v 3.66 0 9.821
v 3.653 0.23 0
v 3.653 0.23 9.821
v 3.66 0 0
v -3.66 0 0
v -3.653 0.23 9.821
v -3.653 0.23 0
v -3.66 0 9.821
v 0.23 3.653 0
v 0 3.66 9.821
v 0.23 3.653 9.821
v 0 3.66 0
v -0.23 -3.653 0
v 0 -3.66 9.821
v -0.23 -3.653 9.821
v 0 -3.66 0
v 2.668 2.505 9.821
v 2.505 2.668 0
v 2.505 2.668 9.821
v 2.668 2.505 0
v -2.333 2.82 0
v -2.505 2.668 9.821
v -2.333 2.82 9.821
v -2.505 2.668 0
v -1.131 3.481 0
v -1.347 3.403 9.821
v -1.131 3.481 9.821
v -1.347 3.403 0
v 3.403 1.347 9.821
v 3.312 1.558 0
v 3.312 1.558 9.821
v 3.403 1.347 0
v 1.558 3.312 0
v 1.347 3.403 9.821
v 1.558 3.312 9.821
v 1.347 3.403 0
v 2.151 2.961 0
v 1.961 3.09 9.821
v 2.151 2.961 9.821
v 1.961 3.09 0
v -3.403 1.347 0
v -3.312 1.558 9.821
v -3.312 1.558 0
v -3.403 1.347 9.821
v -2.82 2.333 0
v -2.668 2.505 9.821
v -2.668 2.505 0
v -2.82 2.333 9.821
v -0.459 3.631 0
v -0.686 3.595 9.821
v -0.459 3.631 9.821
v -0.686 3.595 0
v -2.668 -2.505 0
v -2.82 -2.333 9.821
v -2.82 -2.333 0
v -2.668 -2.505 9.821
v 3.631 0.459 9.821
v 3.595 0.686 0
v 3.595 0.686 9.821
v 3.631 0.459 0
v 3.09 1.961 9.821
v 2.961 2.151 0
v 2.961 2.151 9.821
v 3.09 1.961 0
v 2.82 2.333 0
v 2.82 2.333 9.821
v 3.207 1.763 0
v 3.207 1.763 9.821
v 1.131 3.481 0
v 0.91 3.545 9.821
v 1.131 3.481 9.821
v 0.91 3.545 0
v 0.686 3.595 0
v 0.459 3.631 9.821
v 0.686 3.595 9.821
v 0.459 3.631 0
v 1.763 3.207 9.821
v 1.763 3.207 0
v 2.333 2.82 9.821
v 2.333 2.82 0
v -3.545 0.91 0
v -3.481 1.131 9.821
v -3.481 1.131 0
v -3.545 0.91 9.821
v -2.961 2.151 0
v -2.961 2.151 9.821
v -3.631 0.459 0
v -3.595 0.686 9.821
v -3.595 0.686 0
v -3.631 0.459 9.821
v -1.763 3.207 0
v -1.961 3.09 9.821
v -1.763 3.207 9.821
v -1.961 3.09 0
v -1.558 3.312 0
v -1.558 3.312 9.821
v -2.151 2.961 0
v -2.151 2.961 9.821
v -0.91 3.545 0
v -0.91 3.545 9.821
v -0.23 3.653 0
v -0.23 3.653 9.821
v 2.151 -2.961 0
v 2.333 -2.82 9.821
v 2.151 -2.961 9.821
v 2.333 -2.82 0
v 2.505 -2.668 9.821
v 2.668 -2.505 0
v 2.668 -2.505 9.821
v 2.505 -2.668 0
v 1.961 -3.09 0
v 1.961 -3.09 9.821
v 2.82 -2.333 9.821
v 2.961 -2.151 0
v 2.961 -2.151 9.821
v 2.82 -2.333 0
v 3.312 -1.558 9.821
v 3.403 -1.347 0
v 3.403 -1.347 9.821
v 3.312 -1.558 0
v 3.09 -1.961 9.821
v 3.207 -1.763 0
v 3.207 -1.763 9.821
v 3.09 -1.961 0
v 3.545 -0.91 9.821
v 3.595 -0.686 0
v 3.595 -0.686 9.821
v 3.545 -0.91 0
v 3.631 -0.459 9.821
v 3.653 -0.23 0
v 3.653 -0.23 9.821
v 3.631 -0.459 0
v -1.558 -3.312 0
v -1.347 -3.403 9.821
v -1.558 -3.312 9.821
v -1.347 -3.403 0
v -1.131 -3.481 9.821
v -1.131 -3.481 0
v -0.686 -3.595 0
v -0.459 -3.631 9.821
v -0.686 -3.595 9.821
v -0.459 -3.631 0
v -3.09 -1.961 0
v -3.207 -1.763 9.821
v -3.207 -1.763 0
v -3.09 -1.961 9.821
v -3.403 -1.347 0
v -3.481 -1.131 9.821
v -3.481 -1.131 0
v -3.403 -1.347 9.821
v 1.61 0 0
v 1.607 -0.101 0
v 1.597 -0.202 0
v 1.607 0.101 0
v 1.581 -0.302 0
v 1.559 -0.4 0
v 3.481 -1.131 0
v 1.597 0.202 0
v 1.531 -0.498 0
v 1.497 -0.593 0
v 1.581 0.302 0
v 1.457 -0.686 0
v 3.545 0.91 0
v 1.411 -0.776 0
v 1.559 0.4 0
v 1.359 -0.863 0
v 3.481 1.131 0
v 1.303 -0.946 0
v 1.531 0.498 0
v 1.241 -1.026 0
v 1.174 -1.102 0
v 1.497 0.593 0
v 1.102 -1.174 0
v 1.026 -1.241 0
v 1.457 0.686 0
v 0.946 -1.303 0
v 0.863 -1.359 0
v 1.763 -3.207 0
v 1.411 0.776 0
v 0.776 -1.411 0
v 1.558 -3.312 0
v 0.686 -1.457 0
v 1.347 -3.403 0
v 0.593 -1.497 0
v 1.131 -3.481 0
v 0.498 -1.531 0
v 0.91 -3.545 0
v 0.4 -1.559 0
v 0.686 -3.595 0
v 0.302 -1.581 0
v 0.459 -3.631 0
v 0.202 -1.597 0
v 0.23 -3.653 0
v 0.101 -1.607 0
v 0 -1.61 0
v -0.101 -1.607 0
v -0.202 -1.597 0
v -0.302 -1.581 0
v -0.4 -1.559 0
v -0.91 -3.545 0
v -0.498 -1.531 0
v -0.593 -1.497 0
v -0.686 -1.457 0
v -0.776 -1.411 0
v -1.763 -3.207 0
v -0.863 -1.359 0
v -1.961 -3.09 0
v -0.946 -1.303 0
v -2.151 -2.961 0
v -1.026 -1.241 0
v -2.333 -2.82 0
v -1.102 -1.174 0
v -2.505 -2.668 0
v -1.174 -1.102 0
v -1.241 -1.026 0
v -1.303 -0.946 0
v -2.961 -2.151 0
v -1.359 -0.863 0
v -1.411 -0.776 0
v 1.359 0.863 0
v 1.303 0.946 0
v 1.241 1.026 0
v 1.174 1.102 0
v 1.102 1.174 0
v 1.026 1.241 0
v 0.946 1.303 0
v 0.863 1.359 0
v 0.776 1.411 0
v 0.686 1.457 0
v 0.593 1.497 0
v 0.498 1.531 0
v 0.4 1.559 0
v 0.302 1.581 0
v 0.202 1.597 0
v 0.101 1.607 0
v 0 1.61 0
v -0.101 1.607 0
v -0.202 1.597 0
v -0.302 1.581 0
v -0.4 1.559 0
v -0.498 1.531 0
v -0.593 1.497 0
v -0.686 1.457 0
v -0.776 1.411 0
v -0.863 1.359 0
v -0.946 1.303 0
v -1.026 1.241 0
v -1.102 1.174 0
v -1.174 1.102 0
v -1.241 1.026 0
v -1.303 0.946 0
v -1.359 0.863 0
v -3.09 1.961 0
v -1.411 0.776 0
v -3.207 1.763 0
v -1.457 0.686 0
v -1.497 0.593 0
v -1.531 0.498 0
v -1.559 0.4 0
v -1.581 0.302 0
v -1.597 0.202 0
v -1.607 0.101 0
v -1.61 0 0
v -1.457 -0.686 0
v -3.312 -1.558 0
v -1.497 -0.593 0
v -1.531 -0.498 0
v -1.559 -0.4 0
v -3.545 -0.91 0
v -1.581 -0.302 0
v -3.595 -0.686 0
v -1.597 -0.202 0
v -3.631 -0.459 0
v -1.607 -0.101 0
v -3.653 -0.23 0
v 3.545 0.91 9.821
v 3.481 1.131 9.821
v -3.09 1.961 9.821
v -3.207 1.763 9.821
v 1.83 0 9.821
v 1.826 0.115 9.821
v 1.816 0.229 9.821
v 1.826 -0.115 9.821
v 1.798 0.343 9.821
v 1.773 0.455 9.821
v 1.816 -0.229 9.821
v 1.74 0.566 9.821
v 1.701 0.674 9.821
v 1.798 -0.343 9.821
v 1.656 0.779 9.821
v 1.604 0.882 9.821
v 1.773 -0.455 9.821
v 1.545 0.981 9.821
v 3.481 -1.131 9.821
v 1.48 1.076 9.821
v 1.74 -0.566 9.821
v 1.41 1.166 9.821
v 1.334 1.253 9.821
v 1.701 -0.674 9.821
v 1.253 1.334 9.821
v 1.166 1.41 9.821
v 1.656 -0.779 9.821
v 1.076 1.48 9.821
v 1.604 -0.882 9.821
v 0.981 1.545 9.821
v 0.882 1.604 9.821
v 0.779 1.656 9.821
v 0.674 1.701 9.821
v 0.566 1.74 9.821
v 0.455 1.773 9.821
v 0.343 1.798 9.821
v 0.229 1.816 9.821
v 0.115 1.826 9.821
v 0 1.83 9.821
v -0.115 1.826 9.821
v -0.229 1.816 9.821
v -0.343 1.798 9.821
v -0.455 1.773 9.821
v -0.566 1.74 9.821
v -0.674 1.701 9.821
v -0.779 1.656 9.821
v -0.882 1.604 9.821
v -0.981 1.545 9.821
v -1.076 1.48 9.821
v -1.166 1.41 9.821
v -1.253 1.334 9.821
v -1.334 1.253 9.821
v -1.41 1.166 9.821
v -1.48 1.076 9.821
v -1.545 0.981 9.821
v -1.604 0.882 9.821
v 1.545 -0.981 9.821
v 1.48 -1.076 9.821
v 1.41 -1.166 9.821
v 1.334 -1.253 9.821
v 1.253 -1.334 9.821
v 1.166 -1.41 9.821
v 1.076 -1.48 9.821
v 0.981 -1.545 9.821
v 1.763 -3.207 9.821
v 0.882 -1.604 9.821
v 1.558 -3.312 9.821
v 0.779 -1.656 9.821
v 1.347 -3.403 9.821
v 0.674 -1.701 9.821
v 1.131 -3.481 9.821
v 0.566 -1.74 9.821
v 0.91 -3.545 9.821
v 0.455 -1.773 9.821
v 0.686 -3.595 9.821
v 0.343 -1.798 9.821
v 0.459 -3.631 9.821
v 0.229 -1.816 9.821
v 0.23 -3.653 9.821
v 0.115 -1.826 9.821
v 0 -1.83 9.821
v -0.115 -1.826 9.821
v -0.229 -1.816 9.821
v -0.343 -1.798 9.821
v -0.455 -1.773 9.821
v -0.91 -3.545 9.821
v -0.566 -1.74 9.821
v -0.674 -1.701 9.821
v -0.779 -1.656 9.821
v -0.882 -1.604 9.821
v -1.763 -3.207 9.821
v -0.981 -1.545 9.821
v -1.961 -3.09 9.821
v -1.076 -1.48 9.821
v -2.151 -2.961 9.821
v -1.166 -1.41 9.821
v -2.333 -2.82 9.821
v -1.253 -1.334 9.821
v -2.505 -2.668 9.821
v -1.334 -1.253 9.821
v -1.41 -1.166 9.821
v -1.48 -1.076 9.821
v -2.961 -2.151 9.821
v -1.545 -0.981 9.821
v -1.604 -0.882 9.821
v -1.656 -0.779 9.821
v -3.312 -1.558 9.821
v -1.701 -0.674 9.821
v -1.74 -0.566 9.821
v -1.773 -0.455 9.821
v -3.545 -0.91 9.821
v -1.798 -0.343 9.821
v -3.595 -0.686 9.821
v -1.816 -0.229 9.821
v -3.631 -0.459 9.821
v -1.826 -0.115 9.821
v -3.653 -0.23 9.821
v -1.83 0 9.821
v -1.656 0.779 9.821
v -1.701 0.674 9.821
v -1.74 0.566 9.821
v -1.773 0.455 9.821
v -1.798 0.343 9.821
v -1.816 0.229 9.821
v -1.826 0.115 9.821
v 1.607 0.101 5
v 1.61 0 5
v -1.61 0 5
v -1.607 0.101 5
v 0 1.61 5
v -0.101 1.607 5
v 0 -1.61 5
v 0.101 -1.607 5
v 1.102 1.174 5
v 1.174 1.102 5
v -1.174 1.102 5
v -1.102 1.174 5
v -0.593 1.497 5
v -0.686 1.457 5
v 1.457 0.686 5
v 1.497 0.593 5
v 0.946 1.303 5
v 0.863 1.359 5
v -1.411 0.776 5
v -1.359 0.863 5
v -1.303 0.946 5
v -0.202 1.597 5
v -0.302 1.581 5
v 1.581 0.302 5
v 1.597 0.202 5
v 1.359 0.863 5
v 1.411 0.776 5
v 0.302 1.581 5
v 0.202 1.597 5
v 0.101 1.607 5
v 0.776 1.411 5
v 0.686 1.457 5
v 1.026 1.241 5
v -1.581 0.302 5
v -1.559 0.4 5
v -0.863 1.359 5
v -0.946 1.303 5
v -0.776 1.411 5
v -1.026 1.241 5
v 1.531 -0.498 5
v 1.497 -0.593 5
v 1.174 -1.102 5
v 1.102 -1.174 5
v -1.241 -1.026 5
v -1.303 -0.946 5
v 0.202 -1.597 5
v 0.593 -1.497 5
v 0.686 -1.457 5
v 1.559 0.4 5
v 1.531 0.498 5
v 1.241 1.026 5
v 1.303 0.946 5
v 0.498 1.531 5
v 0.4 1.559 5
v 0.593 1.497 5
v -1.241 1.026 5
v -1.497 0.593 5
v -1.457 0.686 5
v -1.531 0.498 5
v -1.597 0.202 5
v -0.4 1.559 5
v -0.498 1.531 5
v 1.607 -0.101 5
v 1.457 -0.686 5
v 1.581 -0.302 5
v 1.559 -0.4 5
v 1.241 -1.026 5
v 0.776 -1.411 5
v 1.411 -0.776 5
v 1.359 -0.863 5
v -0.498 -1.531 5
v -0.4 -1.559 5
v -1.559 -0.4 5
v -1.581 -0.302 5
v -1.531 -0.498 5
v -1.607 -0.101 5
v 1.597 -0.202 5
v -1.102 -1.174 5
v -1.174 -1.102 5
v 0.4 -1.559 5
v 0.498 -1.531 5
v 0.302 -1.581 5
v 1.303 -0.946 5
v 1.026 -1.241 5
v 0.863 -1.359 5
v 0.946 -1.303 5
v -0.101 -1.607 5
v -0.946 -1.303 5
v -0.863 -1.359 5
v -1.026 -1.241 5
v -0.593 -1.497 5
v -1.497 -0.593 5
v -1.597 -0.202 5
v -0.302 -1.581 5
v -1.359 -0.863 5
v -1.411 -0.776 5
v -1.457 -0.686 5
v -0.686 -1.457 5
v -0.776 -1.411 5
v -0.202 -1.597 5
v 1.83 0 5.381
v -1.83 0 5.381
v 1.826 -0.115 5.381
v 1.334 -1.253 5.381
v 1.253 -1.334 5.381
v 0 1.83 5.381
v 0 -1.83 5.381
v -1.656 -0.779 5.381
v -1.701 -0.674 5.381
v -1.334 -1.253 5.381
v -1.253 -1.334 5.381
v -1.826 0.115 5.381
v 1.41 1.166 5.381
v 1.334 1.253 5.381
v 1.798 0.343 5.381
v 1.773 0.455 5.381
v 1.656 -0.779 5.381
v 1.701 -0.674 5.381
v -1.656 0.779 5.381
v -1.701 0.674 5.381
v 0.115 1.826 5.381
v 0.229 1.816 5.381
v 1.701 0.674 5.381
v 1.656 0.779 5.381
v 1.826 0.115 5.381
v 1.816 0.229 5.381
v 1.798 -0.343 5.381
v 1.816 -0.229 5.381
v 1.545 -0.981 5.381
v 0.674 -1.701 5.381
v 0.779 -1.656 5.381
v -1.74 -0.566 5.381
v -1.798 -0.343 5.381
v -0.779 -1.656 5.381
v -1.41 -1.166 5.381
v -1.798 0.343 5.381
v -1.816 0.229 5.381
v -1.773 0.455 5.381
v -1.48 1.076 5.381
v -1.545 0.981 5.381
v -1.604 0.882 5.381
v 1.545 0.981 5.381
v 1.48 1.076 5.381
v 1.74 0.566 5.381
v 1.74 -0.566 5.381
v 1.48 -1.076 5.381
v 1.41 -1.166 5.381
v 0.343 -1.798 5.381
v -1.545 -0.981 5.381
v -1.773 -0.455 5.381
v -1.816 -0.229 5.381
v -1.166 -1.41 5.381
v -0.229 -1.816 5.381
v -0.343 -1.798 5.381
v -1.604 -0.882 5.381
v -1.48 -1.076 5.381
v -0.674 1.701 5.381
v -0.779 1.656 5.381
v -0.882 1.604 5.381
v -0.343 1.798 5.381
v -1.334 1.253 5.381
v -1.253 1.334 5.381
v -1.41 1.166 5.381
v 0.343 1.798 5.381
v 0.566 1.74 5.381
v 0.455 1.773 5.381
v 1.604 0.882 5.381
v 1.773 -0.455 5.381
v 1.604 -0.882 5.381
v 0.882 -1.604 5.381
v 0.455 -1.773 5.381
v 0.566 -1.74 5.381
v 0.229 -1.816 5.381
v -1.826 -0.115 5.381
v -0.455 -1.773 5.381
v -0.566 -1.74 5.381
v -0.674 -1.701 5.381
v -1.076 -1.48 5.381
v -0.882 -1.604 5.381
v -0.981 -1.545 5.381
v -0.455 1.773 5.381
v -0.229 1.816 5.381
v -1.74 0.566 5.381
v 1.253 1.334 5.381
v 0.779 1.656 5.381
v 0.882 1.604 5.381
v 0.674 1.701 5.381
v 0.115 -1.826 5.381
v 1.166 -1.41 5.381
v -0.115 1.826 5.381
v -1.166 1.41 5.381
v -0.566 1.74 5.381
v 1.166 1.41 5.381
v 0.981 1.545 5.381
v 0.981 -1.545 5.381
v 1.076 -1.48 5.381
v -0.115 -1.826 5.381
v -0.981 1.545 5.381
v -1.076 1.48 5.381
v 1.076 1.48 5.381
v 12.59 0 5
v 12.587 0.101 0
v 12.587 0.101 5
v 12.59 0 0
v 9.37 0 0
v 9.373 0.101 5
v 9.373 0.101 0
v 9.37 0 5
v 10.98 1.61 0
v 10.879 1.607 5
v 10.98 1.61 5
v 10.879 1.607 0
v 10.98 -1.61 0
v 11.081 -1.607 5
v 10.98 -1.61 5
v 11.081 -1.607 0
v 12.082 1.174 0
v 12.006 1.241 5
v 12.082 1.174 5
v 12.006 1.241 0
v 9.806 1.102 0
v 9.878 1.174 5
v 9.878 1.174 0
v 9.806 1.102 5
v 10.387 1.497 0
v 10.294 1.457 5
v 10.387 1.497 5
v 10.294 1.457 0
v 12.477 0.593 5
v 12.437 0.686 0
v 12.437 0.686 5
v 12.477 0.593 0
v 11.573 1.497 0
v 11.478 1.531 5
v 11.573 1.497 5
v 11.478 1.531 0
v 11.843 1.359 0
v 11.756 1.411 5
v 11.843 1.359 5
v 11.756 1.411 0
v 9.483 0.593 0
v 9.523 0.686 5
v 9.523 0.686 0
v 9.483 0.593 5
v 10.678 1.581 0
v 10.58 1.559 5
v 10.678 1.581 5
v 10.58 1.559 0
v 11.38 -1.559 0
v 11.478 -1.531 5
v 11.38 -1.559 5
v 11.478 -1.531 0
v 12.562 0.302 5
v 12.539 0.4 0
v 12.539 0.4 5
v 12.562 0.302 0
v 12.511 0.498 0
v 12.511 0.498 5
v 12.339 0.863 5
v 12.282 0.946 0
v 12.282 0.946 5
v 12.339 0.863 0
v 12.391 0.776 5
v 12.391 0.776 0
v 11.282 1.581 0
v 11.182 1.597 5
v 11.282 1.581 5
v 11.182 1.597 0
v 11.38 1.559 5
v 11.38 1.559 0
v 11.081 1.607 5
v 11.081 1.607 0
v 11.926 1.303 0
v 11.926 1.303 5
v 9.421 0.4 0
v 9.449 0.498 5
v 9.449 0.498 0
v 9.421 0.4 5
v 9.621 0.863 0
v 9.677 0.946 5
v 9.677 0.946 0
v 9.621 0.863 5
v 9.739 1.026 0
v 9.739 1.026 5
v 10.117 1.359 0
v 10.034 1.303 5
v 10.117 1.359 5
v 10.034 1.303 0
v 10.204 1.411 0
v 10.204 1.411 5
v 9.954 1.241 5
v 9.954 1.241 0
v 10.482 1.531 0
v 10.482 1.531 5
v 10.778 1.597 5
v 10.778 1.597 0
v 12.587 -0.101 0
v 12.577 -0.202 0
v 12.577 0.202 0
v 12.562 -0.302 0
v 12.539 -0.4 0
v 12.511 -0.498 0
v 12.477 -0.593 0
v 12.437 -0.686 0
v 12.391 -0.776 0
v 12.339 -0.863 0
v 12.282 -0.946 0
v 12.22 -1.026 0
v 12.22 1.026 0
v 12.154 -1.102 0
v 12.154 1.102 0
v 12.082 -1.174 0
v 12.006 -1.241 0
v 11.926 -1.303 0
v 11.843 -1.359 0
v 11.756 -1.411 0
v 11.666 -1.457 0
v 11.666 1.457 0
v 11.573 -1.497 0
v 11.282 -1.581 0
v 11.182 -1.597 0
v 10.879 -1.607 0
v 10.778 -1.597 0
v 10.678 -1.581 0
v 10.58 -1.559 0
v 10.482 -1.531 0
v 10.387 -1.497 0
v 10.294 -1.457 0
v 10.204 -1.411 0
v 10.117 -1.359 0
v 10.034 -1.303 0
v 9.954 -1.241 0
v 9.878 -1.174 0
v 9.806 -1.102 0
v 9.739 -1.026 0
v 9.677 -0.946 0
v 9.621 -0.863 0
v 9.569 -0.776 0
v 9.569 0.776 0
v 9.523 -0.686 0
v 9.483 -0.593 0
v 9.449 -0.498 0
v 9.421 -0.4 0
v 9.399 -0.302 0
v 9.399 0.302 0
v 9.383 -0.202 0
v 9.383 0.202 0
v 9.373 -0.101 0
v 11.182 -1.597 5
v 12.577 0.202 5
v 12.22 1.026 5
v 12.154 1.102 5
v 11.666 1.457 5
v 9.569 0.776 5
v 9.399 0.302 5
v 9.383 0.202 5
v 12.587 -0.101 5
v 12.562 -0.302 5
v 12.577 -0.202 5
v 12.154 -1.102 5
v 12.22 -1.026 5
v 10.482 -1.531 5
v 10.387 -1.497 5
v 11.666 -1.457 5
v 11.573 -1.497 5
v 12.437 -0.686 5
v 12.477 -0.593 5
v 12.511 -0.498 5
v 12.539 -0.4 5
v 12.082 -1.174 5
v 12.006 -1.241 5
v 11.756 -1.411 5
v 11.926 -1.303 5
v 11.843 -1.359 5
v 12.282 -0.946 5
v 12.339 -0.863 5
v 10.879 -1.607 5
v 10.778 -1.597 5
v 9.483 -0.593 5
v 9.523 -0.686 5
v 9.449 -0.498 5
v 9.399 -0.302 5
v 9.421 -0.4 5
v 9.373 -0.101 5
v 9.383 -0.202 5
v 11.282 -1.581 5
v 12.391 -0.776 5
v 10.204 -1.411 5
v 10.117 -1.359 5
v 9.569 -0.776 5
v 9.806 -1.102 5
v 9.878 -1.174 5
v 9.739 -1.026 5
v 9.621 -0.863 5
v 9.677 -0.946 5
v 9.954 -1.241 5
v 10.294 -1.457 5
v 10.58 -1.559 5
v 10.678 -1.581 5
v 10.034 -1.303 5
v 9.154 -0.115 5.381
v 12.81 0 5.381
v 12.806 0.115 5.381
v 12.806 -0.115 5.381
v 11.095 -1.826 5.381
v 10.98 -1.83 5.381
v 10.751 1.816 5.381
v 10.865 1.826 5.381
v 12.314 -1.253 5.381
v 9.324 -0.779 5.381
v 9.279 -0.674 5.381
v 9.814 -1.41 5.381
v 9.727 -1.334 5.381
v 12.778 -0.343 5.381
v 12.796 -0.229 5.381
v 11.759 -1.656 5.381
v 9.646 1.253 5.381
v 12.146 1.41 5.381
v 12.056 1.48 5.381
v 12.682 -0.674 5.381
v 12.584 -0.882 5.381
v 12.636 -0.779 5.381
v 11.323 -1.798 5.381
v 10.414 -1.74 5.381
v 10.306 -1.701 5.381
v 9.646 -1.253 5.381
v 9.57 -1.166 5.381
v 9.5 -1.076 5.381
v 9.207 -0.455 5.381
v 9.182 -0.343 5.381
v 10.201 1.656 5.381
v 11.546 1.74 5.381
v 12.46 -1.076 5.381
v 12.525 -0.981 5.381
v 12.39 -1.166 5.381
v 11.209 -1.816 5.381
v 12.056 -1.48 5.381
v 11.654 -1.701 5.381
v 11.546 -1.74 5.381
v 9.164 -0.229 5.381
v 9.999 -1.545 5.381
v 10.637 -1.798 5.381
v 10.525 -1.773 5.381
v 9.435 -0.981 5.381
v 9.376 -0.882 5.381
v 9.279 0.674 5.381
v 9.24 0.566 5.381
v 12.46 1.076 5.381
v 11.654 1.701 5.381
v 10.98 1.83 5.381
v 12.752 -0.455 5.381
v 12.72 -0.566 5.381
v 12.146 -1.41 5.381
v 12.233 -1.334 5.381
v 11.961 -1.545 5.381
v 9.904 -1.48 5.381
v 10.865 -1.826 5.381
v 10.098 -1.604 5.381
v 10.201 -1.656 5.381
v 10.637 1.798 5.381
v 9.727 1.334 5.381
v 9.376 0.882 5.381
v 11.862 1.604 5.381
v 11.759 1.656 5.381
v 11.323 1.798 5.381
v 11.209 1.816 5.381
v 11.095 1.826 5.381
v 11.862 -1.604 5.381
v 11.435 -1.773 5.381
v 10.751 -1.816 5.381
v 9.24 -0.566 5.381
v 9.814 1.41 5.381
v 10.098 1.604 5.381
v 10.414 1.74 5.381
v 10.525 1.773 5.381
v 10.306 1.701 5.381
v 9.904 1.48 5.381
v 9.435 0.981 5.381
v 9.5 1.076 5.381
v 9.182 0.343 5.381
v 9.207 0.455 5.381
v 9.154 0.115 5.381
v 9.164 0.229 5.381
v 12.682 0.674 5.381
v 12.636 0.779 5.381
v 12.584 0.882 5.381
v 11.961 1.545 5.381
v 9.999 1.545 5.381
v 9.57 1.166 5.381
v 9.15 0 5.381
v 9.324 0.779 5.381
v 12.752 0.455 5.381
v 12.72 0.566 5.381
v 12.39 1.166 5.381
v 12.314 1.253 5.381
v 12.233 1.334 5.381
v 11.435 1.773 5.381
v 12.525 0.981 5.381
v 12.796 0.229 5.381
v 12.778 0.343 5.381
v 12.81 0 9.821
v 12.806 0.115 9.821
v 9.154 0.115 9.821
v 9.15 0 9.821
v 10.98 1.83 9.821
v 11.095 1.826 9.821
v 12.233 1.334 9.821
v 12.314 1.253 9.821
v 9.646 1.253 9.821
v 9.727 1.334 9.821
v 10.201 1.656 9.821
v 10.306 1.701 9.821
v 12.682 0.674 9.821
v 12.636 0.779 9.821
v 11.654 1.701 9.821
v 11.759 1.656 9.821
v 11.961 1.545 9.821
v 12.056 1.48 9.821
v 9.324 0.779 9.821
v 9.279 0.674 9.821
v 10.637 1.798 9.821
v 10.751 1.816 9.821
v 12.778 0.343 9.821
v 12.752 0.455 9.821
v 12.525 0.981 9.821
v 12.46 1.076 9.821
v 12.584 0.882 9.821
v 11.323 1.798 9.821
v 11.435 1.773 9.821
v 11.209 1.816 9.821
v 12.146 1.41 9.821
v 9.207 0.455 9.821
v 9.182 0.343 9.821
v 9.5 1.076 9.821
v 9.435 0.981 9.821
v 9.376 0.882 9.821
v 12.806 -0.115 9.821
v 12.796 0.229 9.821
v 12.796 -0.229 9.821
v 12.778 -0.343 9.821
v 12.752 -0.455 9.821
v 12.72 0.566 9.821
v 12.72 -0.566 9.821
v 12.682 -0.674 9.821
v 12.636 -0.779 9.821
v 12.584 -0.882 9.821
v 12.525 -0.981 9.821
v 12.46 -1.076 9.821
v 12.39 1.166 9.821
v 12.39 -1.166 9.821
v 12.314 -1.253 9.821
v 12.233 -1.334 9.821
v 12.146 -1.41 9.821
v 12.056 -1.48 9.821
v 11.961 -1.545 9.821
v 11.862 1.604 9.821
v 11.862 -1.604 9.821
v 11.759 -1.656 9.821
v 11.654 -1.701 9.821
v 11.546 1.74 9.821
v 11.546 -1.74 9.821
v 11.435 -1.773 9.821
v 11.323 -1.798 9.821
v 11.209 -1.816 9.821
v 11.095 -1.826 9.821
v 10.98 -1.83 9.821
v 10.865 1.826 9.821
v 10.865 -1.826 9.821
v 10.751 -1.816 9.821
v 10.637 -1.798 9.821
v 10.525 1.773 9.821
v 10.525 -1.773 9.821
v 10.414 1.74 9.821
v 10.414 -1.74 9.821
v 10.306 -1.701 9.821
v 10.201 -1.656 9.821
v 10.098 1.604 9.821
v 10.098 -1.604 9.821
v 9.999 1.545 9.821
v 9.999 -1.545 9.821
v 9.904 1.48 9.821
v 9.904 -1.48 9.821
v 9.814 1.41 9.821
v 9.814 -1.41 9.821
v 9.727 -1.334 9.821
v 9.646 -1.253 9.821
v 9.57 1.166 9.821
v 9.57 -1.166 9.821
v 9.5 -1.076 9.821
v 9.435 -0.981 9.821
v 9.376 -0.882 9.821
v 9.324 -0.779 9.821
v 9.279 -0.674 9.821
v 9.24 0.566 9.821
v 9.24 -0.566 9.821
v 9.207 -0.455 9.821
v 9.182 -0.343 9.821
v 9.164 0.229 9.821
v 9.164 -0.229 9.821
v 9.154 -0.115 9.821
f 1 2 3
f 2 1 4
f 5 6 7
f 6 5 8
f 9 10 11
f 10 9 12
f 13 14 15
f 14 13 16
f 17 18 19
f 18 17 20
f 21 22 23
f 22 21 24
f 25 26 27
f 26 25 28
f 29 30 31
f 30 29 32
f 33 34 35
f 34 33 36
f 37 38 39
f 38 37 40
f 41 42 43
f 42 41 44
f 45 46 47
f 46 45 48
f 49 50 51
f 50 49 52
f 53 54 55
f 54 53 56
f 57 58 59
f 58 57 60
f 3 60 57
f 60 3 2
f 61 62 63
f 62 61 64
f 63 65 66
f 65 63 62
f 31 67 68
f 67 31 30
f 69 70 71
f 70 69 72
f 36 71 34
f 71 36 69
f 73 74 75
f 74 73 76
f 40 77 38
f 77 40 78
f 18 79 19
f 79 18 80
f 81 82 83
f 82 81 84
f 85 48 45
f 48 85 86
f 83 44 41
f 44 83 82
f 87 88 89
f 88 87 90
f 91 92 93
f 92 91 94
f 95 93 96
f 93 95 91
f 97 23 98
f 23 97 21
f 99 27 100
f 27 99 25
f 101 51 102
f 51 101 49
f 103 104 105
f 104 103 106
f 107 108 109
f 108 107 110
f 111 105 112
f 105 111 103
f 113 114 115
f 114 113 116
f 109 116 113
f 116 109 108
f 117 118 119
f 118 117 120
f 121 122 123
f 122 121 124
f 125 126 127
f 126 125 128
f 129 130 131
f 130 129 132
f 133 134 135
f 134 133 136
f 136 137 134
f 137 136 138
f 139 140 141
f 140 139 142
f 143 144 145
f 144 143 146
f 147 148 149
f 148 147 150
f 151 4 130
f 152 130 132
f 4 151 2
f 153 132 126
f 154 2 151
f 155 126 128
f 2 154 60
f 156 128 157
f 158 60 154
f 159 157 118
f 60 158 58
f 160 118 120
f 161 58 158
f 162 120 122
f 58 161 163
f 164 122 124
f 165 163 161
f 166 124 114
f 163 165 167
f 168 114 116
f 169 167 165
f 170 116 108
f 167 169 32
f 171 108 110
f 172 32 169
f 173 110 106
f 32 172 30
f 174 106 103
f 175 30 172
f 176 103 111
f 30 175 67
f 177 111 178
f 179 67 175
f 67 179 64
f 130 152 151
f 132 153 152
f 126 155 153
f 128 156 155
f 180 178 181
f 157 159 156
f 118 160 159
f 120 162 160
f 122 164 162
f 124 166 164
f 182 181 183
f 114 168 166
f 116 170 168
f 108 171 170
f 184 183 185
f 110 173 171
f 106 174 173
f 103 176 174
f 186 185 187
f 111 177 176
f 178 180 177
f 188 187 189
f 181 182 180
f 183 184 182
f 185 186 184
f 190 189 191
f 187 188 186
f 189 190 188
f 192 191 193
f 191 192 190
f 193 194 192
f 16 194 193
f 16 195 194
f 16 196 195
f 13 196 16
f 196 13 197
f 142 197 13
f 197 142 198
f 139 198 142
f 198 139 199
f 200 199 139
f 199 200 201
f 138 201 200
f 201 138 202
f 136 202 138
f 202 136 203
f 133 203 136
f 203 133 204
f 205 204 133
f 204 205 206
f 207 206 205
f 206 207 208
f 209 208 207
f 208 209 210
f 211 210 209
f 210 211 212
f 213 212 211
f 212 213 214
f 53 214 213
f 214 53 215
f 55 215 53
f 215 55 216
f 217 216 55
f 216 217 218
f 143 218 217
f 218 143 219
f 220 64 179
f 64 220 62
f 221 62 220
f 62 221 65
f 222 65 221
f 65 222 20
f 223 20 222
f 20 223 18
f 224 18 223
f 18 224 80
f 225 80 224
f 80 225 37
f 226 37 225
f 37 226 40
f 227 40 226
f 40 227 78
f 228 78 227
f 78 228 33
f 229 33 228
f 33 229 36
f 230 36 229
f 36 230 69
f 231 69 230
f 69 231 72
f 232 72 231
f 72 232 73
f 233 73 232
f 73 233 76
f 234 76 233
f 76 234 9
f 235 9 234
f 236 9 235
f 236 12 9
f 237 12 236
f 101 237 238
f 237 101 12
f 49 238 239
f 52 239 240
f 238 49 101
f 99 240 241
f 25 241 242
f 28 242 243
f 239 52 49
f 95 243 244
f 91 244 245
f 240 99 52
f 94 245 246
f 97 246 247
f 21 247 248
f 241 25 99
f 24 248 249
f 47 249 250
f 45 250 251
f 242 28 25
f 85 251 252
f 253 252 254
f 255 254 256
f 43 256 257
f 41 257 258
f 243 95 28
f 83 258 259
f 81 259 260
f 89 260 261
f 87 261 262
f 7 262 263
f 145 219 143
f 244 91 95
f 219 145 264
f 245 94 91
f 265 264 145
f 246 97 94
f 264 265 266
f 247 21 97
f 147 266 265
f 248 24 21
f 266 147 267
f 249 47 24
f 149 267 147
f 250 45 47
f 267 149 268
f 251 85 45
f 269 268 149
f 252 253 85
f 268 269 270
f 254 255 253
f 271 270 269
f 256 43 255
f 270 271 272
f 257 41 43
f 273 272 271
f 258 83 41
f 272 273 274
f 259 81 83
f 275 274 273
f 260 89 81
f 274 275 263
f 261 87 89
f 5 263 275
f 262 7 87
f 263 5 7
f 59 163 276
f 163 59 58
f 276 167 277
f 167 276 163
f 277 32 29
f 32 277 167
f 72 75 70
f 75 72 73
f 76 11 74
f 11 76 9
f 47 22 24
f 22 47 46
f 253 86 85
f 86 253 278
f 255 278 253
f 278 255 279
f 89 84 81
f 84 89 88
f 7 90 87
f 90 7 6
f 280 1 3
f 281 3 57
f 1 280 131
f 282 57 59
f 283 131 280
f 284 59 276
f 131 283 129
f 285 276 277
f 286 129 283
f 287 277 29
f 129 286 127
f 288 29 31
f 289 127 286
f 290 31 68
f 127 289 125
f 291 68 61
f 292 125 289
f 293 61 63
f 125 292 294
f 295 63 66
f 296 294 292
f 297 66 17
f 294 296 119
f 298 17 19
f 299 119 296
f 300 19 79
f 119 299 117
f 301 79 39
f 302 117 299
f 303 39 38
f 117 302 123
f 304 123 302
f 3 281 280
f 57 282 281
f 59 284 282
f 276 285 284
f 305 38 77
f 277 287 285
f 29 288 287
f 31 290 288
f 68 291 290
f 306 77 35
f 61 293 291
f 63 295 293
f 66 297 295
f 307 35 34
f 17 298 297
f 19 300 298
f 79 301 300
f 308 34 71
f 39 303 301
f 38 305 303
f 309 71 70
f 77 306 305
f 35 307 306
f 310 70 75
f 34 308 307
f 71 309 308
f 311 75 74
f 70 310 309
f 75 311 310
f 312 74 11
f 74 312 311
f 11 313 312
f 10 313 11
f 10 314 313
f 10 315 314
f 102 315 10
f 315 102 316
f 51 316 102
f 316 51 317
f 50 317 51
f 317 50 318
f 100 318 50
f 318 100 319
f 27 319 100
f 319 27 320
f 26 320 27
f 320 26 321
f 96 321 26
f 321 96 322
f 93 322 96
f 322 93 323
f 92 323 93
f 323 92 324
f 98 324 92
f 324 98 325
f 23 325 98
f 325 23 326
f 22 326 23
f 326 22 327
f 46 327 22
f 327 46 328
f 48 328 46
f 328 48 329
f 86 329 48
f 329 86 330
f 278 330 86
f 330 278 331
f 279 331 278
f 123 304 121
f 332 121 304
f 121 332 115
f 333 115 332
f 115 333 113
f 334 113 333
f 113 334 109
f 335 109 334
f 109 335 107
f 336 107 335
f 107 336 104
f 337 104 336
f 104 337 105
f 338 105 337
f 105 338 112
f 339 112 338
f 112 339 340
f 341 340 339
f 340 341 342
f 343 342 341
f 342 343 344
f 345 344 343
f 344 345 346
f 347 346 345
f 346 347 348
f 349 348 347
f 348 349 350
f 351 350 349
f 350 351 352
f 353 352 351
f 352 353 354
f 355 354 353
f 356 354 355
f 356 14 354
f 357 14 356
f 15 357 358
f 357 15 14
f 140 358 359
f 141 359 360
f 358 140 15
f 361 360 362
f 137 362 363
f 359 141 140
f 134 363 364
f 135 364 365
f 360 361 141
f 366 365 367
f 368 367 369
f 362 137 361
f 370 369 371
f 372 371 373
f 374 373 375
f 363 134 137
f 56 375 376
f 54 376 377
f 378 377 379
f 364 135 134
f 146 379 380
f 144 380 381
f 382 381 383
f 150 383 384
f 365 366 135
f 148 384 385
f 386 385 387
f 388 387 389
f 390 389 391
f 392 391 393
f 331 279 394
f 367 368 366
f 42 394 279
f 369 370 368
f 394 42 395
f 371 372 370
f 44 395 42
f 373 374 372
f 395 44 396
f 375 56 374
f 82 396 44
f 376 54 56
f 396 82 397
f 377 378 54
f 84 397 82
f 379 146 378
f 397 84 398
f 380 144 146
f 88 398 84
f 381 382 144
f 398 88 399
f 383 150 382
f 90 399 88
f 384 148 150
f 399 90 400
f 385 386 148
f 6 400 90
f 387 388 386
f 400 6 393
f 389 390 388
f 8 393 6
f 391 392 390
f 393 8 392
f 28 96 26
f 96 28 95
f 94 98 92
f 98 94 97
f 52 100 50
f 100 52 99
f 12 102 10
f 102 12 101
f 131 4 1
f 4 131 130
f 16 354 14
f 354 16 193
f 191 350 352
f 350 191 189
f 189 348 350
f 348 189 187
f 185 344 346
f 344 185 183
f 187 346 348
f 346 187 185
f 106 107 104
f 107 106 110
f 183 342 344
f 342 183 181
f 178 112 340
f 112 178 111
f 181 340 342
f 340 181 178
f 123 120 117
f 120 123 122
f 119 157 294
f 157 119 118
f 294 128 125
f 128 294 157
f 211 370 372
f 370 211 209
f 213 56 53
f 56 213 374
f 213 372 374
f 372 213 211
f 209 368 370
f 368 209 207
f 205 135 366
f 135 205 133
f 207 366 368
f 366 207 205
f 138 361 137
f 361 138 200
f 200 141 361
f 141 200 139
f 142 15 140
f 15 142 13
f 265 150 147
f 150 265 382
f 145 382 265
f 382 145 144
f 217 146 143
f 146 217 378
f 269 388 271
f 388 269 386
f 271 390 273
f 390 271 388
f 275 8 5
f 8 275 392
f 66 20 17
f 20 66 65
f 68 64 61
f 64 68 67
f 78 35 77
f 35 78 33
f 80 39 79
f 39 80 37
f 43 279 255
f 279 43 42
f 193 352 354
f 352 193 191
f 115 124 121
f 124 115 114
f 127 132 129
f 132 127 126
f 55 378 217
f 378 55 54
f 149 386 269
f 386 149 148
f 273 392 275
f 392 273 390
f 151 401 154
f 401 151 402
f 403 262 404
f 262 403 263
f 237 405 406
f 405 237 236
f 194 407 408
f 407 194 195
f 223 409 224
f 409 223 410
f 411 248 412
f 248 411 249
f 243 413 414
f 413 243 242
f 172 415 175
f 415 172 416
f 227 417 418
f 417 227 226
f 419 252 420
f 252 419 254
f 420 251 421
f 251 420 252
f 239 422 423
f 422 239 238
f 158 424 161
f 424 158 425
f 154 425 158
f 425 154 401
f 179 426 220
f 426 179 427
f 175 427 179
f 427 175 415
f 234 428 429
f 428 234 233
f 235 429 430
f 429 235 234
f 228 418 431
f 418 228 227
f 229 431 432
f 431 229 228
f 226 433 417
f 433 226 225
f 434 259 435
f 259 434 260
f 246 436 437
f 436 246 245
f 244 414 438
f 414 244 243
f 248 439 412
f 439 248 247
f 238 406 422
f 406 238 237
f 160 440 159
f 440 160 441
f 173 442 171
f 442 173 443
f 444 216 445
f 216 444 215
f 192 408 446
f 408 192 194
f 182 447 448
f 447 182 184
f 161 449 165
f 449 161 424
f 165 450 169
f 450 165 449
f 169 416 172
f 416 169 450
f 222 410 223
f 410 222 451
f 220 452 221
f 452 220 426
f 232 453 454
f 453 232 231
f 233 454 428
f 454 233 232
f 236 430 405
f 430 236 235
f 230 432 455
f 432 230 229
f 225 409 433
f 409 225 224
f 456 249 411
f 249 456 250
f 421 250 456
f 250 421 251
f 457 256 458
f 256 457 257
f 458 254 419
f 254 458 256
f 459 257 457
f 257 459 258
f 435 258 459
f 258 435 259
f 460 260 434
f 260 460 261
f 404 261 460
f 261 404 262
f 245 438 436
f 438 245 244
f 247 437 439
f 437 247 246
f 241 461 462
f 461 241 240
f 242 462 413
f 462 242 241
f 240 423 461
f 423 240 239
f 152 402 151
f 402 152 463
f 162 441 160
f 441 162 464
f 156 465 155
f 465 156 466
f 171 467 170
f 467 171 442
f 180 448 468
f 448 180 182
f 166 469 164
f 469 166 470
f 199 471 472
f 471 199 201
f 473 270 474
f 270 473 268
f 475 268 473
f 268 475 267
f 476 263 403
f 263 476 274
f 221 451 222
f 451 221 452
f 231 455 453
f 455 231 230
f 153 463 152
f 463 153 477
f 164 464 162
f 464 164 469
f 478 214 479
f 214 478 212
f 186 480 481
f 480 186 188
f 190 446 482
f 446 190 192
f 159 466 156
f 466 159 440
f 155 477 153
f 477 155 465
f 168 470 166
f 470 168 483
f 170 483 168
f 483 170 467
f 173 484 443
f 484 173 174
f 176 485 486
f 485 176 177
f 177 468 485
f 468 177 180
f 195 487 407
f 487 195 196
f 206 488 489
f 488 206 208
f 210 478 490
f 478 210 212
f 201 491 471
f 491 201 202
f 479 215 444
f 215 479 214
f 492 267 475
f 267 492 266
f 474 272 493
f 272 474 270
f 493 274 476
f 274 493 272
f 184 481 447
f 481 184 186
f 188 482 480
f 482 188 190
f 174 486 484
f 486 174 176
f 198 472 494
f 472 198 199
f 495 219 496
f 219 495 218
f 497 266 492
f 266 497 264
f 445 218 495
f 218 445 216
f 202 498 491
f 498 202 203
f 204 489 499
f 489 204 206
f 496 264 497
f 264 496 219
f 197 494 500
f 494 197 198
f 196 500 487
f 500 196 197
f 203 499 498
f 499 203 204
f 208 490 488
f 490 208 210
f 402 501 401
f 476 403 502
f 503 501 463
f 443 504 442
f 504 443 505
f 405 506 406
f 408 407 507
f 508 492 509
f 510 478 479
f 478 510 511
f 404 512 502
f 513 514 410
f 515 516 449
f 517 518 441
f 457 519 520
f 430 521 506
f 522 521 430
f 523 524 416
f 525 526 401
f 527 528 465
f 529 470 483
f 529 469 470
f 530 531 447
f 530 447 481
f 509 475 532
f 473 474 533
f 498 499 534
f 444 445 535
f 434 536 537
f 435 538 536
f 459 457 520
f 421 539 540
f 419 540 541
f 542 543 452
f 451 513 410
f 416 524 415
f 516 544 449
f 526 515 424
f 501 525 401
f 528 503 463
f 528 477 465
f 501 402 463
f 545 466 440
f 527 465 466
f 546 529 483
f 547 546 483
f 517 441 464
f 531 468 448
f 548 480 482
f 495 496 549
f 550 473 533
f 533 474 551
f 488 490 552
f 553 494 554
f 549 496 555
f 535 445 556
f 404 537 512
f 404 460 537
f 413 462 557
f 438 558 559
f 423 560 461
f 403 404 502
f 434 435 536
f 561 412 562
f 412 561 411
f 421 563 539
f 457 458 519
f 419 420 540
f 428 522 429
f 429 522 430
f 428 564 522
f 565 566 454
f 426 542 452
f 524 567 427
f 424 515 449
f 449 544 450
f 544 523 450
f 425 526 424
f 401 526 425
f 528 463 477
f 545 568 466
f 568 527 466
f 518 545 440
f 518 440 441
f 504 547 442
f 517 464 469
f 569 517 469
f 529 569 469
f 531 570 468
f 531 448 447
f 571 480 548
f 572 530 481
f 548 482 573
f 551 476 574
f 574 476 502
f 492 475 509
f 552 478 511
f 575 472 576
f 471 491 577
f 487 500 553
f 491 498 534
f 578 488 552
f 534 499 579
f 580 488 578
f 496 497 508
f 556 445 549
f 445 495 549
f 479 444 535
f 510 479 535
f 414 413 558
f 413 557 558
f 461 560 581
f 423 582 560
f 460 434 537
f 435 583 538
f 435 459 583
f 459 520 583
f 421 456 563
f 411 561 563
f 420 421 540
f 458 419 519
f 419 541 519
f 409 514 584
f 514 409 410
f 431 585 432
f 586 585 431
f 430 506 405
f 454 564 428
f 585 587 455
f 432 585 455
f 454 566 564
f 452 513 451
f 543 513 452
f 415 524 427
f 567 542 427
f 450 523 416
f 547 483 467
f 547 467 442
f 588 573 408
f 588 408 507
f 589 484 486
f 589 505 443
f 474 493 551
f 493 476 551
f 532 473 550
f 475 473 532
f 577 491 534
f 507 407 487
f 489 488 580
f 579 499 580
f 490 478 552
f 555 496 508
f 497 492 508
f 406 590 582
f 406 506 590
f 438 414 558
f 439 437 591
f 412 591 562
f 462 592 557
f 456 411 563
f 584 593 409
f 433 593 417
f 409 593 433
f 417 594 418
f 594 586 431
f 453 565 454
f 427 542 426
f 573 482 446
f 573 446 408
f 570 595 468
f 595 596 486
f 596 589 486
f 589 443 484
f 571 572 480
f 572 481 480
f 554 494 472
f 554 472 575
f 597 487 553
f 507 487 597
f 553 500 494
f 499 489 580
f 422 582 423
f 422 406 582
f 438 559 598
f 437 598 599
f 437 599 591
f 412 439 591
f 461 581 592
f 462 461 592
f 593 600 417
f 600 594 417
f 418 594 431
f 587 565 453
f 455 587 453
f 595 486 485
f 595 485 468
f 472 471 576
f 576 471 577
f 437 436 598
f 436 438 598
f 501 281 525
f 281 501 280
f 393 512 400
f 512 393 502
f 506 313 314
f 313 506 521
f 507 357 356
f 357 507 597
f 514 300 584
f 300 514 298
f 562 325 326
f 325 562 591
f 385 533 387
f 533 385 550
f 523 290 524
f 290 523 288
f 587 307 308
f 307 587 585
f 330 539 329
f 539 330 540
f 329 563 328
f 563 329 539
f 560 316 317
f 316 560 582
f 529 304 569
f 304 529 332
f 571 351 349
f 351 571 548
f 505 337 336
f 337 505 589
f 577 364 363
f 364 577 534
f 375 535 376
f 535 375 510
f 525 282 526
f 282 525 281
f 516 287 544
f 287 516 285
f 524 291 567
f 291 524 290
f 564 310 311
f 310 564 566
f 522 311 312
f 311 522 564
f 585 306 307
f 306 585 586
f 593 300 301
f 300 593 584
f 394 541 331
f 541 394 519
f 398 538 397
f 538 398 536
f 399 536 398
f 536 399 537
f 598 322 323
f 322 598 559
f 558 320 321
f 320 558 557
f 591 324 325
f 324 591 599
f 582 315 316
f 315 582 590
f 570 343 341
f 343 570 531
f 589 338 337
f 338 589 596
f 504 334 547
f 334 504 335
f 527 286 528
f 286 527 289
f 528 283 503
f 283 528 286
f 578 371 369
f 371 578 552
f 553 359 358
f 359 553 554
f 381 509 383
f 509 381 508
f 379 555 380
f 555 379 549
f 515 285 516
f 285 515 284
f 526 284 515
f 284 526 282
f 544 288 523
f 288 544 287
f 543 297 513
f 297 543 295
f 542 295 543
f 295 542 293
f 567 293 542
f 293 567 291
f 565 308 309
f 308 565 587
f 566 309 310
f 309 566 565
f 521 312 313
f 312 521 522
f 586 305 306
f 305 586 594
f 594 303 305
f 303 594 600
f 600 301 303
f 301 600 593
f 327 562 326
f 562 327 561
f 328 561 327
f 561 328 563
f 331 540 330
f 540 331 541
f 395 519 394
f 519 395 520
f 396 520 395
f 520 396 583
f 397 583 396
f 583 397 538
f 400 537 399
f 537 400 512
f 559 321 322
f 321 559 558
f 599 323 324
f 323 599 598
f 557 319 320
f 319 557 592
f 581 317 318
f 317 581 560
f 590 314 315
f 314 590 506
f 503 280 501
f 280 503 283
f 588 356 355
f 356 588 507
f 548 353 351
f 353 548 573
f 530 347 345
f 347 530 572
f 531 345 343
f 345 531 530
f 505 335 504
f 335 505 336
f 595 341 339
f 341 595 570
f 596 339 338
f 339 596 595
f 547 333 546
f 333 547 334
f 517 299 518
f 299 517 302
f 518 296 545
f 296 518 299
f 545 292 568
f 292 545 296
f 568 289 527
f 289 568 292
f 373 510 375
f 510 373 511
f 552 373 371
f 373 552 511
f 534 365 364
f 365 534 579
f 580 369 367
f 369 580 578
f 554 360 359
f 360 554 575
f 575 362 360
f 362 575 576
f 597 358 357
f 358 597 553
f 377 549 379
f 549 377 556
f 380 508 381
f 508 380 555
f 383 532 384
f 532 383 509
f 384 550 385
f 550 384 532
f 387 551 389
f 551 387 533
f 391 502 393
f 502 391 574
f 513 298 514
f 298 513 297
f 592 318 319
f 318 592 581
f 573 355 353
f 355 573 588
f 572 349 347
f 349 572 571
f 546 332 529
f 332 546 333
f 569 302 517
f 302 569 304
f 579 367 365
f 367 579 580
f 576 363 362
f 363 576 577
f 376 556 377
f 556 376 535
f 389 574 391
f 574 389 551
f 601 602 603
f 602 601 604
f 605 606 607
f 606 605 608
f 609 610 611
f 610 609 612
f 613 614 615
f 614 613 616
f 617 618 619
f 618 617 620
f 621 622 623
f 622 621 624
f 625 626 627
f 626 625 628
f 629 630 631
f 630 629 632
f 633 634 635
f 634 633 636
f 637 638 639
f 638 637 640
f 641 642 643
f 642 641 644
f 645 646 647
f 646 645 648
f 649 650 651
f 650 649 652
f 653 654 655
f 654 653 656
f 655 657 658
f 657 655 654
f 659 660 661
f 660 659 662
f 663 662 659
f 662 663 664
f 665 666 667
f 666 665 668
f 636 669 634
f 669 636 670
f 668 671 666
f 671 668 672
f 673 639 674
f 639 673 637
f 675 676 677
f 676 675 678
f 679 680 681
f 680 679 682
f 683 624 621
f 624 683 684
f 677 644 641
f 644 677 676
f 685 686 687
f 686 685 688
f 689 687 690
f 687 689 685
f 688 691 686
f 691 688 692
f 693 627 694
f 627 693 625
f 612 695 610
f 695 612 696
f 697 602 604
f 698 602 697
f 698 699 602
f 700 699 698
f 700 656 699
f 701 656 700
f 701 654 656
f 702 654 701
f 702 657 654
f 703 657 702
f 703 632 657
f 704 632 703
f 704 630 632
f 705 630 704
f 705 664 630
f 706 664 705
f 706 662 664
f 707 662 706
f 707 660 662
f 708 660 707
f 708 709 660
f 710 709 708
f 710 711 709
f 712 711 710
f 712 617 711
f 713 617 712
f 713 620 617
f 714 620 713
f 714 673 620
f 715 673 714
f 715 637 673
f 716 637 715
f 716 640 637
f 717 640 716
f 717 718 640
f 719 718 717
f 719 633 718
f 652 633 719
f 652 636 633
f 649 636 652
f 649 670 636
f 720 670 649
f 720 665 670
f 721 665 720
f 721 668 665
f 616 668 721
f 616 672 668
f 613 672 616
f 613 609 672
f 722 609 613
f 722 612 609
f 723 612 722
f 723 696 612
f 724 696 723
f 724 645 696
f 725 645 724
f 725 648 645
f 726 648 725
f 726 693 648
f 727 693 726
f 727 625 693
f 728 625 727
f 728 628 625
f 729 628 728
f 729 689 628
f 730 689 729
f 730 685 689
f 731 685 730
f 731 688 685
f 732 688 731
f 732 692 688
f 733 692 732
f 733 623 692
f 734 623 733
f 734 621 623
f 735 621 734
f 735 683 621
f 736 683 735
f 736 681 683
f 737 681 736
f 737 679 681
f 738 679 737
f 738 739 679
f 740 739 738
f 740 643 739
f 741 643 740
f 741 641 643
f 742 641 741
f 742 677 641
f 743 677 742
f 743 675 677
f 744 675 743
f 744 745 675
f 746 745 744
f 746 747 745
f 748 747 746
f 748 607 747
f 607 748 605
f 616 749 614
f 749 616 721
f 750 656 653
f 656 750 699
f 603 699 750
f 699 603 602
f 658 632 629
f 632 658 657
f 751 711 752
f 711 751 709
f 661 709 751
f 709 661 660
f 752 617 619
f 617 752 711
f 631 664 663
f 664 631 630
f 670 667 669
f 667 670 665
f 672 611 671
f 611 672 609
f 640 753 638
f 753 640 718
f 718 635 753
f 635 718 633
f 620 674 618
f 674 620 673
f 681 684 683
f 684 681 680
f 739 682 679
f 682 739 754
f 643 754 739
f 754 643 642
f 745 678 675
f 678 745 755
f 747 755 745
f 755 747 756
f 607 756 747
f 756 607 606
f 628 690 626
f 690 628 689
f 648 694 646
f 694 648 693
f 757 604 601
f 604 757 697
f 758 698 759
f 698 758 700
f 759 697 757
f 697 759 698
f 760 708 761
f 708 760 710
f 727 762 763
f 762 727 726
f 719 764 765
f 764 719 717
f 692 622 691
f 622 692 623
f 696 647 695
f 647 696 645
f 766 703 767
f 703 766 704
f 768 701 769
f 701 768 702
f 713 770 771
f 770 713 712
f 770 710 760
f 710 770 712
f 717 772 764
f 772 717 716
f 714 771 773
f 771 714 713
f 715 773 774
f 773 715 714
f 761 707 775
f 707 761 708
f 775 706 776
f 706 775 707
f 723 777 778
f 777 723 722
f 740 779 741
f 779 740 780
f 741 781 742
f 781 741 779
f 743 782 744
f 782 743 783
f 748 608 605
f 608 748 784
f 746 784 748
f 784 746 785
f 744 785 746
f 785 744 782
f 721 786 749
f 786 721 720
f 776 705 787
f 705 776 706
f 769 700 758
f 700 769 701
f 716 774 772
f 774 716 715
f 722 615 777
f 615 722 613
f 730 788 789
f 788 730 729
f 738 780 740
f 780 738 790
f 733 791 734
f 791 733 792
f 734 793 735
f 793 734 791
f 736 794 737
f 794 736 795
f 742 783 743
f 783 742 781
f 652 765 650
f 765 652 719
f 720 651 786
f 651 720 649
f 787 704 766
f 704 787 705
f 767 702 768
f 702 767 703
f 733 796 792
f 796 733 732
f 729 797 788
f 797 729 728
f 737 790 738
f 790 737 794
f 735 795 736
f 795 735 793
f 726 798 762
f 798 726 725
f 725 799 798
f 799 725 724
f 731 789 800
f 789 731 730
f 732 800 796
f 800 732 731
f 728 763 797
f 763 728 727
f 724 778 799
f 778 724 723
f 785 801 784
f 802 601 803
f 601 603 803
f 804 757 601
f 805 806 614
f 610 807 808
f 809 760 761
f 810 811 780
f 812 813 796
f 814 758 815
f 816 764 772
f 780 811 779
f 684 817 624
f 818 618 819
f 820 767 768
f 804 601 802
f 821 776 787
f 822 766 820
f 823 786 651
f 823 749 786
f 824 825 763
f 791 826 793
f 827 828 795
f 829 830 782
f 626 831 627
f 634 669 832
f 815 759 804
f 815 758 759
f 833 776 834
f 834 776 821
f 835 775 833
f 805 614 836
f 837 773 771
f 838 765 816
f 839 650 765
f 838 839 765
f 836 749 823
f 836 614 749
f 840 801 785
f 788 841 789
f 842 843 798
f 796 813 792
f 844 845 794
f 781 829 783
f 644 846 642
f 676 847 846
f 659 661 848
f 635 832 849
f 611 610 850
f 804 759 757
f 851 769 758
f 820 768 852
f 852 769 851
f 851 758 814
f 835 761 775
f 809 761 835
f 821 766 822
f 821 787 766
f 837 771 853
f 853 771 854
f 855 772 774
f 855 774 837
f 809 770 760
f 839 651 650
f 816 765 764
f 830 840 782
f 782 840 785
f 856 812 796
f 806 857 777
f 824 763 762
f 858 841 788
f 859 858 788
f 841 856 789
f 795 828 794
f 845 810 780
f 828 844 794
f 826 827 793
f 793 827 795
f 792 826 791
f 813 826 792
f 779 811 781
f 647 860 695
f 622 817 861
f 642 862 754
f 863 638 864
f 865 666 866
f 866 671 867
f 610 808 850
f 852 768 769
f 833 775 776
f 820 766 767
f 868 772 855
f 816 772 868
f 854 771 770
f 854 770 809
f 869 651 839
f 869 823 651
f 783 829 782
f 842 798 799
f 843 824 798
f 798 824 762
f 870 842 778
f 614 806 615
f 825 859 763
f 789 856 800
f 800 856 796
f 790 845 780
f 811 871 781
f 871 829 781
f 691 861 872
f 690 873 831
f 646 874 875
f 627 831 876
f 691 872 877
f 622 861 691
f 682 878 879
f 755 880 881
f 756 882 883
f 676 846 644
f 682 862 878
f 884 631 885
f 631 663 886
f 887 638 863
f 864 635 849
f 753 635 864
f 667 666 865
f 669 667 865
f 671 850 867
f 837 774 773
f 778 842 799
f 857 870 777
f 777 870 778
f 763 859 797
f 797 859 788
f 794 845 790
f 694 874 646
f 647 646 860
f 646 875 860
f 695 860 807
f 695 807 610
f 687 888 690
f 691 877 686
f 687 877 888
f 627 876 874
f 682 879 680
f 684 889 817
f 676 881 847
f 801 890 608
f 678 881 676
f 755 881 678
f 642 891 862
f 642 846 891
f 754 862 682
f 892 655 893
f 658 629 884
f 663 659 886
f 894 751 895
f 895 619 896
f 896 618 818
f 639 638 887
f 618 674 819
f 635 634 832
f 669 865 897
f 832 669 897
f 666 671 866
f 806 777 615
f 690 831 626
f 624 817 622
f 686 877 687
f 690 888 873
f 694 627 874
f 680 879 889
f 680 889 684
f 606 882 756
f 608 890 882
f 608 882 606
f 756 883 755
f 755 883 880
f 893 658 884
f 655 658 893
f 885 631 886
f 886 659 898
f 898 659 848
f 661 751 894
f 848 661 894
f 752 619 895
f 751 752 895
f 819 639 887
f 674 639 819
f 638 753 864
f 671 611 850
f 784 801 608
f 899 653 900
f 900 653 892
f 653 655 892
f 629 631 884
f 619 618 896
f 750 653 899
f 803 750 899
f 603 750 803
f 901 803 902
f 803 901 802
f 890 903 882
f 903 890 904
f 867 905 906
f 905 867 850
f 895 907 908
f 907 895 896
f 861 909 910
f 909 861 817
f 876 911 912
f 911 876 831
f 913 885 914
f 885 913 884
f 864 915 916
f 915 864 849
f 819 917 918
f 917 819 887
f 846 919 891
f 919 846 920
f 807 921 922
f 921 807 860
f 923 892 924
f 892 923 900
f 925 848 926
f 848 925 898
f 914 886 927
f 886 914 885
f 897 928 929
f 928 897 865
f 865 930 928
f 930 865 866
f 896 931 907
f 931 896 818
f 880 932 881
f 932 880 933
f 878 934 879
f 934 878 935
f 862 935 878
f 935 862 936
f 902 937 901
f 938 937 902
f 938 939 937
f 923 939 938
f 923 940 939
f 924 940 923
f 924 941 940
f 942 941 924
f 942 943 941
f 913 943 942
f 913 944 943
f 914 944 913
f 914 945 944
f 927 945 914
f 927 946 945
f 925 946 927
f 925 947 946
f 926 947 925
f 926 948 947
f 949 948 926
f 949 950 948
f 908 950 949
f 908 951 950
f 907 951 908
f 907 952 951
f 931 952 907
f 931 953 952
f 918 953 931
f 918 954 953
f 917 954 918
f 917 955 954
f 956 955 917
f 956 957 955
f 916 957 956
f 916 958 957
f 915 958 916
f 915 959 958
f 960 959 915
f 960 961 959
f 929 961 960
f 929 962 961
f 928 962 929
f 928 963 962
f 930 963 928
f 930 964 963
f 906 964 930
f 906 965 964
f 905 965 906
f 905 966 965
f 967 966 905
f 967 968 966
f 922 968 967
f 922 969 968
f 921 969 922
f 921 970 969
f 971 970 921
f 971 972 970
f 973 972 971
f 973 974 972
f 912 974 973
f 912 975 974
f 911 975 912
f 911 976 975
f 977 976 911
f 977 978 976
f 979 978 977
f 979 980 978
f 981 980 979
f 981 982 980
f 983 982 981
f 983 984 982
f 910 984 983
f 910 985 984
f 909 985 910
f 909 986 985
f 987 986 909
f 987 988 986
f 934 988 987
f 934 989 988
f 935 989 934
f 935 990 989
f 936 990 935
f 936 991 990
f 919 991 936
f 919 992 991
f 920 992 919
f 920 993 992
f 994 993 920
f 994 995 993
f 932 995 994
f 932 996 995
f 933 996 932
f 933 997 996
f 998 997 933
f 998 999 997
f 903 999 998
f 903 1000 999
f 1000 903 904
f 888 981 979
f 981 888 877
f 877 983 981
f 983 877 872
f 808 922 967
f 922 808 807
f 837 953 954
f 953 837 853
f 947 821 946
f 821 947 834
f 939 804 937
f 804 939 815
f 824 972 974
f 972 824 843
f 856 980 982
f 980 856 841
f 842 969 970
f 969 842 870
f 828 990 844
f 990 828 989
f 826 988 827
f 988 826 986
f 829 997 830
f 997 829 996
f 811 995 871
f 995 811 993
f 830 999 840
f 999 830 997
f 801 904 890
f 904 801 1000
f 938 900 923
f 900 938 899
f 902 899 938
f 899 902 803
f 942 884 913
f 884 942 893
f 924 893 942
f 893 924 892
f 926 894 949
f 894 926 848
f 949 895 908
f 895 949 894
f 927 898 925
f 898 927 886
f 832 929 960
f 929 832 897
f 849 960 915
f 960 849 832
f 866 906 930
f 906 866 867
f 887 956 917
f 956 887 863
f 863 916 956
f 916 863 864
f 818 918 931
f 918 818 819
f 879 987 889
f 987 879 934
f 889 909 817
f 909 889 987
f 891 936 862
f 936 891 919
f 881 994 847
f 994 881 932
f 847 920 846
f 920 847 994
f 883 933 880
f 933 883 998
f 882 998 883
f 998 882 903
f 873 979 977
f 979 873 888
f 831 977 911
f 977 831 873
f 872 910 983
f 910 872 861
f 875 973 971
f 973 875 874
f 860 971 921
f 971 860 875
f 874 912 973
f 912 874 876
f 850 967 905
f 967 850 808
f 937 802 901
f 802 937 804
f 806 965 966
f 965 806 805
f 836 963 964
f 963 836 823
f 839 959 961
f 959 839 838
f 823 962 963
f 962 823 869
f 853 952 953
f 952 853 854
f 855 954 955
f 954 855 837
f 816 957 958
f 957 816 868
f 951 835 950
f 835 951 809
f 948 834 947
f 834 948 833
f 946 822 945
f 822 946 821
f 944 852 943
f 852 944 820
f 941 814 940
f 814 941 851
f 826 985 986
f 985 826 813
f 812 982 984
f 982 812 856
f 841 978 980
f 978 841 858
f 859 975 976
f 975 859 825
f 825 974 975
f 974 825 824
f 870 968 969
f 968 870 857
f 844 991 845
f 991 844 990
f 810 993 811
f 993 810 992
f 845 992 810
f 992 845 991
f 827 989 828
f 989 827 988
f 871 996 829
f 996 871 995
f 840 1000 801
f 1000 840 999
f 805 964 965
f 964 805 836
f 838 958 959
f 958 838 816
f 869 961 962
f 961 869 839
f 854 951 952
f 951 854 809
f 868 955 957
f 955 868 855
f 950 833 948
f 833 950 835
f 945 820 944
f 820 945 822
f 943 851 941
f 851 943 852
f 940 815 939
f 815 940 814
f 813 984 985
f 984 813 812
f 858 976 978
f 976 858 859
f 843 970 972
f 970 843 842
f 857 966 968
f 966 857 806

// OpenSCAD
//122GHz feedhorn
//based on W1GHZ's Feeds for Parabolic Dish Antennas, Chapter 6
//This is a version of the W2IMU Dual-Mode Feed
//flare half angle recommendation from W1GHZ

a = 3.22; //mm
b = 3.66; //mm
c = 4.44; //mm
half_angle = 30; //degrees
waveguide_length = 5; //mm
flare_length = ((b/2 - a/2)/tan(half_angle)); //mm
outer_diameter = b; //mm
over_there = 3*b; //mm

$fn = 100;





difference()
{
//outer cylinder to subtract from
cylinder(h= (waveguide_length + flare_length + c), r1=outer_diameter, r2=outer_diameter, center=false);

//inner radius of input waveguide
cylinder(h= waveguide_length, r1=a/2, r2=a/2, center=false);

//inner radius of flare
translate([0,0,waveguide_length]) cylinder(h=flare_length, r1=a/2, r2=b/2, center=false);

//inner radius of output waveguide
translate([0,0,waveguide_length + flare_length]) cylinder(h= c, r1=b/2, r2=b/2, center=false);
}


//make a drawing of what the interior radii look like

//inner radius of input waveguide
translate([over_there, 0, 0]) cylinder(h= waveguide_length, r1=a/2, r2=a/2, center=false);

//inner radius of flare
translate([over_there,0,waveguide_length]) cylinder(h=flare_length, r1=a/2, r2=b/2, center=false);

//inner radius of output waveguide
translate([over_there,0,waveguide_length + flare_length]) cylinder(h= c, r1=b/2, r2=b/2, center=false);
